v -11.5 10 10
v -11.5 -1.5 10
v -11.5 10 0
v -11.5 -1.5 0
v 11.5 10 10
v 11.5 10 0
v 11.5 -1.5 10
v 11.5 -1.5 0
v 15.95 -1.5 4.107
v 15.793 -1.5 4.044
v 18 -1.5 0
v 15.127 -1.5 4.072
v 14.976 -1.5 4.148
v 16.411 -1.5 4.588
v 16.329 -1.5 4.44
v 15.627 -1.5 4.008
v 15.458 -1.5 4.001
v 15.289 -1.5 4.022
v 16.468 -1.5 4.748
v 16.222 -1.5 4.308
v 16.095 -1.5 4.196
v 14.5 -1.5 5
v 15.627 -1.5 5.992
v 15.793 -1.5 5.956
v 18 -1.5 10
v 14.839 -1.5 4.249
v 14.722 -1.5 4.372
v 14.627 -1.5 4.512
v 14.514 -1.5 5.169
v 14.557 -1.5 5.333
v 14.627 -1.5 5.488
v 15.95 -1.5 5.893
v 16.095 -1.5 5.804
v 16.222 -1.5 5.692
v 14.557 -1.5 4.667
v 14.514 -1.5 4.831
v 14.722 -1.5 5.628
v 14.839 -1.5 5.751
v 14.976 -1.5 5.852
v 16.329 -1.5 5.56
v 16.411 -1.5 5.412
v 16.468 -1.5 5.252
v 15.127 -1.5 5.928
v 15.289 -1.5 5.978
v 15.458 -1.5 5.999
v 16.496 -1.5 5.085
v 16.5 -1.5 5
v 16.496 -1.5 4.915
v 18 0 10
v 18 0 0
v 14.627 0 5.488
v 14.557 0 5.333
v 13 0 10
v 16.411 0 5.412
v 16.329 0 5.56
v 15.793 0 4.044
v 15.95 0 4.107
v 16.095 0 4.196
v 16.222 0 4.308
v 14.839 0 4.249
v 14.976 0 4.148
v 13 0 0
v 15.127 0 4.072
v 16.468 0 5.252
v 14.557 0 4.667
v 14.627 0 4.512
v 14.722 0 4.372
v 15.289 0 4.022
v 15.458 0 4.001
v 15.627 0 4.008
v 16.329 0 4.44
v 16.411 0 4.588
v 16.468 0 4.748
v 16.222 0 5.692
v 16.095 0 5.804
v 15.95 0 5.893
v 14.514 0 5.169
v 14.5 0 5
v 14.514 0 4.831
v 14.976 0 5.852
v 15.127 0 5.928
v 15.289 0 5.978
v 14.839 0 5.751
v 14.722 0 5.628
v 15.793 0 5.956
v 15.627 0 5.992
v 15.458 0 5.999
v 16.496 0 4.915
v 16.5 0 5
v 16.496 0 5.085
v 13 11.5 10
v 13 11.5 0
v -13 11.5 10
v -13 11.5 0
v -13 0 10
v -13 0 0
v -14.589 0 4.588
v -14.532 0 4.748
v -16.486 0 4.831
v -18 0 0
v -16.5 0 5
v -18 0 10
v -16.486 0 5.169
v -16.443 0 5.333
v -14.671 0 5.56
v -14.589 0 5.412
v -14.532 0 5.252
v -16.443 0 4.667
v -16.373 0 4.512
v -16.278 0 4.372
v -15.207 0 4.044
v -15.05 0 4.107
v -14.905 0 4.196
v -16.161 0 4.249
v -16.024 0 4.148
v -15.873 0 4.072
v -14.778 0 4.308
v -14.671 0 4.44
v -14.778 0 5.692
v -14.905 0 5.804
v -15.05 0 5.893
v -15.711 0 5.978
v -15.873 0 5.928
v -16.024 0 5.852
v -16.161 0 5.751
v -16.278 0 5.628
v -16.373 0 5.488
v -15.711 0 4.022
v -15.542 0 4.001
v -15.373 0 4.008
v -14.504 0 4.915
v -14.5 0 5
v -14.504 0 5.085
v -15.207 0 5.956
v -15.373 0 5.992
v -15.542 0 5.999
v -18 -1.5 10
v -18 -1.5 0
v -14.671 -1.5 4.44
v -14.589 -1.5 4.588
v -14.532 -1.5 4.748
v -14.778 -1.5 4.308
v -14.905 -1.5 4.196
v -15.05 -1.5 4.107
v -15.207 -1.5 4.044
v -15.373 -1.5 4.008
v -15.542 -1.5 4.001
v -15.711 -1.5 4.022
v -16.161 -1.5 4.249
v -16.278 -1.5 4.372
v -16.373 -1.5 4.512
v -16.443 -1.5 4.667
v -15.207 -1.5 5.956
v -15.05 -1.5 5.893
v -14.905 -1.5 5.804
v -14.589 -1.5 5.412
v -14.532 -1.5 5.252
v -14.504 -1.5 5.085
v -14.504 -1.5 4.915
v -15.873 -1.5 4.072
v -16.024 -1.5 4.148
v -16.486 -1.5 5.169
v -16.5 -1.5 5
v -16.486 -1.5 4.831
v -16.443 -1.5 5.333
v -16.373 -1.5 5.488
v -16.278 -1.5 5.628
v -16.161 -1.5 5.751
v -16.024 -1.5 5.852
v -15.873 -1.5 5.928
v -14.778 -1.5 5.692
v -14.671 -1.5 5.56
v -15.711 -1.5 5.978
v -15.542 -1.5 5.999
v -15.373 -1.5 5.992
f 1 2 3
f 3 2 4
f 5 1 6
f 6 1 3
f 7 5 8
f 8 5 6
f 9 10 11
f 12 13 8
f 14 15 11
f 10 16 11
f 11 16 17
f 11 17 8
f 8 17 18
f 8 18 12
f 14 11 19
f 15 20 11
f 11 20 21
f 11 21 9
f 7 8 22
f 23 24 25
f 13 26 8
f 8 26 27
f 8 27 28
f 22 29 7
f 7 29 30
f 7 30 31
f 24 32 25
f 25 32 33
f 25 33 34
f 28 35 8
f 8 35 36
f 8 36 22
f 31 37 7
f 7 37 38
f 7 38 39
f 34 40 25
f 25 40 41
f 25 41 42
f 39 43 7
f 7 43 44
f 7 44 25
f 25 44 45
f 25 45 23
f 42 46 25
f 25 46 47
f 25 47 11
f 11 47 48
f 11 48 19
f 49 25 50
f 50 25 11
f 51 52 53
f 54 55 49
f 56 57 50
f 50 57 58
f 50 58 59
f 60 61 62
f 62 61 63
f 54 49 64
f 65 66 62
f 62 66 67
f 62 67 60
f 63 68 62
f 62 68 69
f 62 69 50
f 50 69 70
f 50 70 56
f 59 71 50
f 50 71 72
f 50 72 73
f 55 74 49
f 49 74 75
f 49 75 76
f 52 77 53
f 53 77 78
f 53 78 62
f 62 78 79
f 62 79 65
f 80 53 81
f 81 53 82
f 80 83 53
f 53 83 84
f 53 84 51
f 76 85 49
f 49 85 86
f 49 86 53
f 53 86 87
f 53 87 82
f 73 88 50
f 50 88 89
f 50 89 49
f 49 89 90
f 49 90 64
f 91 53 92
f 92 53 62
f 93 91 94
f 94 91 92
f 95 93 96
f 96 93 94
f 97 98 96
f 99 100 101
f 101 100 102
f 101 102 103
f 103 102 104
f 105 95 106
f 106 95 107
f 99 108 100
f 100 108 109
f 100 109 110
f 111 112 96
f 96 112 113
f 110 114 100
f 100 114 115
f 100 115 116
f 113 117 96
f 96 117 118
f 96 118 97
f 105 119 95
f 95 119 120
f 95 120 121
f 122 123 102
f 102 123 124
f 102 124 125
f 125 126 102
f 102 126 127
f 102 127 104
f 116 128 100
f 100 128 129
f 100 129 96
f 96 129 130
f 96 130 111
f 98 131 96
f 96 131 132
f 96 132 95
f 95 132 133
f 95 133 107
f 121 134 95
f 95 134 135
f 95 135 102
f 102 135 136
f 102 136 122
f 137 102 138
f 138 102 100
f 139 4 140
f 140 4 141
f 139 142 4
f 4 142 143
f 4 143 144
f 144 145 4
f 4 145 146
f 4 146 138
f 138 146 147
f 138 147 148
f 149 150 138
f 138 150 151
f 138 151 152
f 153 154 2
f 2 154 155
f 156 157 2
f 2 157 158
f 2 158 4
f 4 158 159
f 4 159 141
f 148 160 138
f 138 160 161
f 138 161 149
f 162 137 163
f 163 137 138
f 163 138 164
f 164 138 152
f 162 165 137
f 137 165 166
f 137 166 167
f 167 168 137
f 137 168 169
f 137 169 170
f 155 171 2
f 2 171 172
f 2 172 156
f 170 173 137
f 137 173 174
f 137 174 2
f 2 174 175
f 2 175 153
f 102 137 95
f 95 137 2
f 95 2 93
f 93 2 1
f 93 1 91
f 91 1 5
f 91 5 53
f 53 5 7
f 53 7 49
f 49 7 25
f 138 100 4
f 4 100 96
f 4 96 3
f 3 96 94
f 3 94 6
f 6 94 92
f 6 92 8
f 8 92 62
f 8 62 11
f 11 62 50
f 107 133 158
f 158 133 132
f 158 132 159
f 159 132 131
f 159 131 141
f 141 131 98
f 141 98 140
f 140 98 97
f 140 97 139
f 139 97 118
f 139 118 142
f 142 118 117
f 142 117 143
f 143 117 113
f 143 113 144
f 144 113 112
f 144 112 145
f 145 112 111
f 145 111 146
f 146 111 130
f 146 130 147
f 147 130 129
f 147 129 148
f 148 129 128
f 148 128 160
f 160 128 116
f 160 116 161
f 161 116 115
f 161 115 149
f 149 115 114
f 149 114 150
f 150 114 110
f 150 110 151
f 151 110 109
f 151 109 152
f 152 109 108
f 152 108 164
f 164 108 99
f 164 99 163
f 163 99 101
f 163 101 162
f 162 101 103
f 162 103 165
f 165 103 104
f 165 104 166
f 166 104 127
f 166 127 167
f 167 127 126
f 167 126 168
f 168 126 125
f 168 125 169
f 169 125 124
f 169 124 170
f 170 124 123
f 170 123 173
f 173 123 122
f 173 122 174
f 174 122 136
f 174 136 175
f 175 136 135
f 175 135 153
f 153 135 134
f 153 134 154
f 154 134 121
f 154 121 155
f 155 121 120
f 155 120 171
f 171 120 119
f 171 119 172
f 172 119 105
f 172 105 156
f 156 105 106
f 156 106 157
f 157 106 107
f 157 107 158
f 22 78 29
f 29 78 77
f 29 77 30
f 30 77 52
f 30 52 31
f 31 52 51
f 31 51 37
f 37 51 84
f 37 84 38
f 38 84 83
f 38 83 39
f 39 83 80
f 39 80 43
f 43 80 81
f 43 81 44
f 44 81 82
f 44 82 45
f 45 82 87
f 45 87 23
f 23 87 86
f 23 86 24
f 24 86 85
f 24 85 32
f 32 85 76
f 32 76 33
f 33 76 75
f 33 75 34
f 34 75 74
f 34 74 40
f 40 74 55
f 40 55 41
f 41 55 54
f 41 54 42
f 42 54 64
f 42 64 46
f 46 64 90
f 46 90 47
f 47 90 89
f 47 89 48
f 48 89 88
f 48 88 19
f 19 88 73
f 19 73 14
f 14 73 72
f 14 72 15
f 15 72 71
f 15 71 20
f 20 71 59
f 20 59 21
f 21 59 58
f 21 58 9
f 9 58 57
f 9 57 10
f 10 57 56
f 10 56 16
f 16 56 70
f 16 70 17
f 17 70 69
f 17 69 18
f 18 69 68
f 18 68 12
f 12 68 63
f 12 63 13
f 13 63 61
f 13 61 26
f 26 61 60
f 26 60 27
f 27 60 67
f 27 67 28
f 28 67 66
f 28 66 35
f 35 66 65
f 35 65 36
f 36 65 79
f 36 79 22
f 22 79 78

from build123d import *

# Parameters (mm, degrees)
BOSS_EXTRUDE1_DEPTH     = 10
CUT_EXTRUDE1_DEPTH      = 24.58495283
CUT_EXTRUDE1_DEPTH_BACK = 24.58495283
SKETCH2_R               = 1


with BuildPart() as part:
    # Sketch1 → Boss-Extrude1 (new body)
    with BuildSketch(Plane.XY):
        Polygon((-11.5, 0), (-11.5, 10), (11.5, 10), (11.5, 0), (11.5, -1.5), (18, -1.5), (18, 0), (13, 0), (13, 11.5), (-13, 11.5), (-13, 0), (-18, 0), (-18, -1.5), (-11.5, -1.5), align=None)
    extrude(amount=BOSS_EXTRUDE1_DEPTH)

    # Sketch2 → Cut-Extrude1 (cut, two sides: drawn at the far end of the back side and taken through both)
    with BuildSketch(Plane(origin=(0, 0, 0), x_dir=(1, 0, 0), z_dir=(0, 1, 0)).offset(-CUT_EXTRUDE1_DEPTH_BACK)):
        with Locations(Location((-15.5, -5, 0), (0, 0, 180))):
            Circle(SKETCH2_R)
        with Locations((15.5, -5)):
            Circle(SKETCH2_R)
    extrude(amount=CUT_EXTRUDE1_DEPTH + CUT_EXTRUDE1_DEPTH_BACK, mode=Mode.SUBTRACT)


solid = part.part
